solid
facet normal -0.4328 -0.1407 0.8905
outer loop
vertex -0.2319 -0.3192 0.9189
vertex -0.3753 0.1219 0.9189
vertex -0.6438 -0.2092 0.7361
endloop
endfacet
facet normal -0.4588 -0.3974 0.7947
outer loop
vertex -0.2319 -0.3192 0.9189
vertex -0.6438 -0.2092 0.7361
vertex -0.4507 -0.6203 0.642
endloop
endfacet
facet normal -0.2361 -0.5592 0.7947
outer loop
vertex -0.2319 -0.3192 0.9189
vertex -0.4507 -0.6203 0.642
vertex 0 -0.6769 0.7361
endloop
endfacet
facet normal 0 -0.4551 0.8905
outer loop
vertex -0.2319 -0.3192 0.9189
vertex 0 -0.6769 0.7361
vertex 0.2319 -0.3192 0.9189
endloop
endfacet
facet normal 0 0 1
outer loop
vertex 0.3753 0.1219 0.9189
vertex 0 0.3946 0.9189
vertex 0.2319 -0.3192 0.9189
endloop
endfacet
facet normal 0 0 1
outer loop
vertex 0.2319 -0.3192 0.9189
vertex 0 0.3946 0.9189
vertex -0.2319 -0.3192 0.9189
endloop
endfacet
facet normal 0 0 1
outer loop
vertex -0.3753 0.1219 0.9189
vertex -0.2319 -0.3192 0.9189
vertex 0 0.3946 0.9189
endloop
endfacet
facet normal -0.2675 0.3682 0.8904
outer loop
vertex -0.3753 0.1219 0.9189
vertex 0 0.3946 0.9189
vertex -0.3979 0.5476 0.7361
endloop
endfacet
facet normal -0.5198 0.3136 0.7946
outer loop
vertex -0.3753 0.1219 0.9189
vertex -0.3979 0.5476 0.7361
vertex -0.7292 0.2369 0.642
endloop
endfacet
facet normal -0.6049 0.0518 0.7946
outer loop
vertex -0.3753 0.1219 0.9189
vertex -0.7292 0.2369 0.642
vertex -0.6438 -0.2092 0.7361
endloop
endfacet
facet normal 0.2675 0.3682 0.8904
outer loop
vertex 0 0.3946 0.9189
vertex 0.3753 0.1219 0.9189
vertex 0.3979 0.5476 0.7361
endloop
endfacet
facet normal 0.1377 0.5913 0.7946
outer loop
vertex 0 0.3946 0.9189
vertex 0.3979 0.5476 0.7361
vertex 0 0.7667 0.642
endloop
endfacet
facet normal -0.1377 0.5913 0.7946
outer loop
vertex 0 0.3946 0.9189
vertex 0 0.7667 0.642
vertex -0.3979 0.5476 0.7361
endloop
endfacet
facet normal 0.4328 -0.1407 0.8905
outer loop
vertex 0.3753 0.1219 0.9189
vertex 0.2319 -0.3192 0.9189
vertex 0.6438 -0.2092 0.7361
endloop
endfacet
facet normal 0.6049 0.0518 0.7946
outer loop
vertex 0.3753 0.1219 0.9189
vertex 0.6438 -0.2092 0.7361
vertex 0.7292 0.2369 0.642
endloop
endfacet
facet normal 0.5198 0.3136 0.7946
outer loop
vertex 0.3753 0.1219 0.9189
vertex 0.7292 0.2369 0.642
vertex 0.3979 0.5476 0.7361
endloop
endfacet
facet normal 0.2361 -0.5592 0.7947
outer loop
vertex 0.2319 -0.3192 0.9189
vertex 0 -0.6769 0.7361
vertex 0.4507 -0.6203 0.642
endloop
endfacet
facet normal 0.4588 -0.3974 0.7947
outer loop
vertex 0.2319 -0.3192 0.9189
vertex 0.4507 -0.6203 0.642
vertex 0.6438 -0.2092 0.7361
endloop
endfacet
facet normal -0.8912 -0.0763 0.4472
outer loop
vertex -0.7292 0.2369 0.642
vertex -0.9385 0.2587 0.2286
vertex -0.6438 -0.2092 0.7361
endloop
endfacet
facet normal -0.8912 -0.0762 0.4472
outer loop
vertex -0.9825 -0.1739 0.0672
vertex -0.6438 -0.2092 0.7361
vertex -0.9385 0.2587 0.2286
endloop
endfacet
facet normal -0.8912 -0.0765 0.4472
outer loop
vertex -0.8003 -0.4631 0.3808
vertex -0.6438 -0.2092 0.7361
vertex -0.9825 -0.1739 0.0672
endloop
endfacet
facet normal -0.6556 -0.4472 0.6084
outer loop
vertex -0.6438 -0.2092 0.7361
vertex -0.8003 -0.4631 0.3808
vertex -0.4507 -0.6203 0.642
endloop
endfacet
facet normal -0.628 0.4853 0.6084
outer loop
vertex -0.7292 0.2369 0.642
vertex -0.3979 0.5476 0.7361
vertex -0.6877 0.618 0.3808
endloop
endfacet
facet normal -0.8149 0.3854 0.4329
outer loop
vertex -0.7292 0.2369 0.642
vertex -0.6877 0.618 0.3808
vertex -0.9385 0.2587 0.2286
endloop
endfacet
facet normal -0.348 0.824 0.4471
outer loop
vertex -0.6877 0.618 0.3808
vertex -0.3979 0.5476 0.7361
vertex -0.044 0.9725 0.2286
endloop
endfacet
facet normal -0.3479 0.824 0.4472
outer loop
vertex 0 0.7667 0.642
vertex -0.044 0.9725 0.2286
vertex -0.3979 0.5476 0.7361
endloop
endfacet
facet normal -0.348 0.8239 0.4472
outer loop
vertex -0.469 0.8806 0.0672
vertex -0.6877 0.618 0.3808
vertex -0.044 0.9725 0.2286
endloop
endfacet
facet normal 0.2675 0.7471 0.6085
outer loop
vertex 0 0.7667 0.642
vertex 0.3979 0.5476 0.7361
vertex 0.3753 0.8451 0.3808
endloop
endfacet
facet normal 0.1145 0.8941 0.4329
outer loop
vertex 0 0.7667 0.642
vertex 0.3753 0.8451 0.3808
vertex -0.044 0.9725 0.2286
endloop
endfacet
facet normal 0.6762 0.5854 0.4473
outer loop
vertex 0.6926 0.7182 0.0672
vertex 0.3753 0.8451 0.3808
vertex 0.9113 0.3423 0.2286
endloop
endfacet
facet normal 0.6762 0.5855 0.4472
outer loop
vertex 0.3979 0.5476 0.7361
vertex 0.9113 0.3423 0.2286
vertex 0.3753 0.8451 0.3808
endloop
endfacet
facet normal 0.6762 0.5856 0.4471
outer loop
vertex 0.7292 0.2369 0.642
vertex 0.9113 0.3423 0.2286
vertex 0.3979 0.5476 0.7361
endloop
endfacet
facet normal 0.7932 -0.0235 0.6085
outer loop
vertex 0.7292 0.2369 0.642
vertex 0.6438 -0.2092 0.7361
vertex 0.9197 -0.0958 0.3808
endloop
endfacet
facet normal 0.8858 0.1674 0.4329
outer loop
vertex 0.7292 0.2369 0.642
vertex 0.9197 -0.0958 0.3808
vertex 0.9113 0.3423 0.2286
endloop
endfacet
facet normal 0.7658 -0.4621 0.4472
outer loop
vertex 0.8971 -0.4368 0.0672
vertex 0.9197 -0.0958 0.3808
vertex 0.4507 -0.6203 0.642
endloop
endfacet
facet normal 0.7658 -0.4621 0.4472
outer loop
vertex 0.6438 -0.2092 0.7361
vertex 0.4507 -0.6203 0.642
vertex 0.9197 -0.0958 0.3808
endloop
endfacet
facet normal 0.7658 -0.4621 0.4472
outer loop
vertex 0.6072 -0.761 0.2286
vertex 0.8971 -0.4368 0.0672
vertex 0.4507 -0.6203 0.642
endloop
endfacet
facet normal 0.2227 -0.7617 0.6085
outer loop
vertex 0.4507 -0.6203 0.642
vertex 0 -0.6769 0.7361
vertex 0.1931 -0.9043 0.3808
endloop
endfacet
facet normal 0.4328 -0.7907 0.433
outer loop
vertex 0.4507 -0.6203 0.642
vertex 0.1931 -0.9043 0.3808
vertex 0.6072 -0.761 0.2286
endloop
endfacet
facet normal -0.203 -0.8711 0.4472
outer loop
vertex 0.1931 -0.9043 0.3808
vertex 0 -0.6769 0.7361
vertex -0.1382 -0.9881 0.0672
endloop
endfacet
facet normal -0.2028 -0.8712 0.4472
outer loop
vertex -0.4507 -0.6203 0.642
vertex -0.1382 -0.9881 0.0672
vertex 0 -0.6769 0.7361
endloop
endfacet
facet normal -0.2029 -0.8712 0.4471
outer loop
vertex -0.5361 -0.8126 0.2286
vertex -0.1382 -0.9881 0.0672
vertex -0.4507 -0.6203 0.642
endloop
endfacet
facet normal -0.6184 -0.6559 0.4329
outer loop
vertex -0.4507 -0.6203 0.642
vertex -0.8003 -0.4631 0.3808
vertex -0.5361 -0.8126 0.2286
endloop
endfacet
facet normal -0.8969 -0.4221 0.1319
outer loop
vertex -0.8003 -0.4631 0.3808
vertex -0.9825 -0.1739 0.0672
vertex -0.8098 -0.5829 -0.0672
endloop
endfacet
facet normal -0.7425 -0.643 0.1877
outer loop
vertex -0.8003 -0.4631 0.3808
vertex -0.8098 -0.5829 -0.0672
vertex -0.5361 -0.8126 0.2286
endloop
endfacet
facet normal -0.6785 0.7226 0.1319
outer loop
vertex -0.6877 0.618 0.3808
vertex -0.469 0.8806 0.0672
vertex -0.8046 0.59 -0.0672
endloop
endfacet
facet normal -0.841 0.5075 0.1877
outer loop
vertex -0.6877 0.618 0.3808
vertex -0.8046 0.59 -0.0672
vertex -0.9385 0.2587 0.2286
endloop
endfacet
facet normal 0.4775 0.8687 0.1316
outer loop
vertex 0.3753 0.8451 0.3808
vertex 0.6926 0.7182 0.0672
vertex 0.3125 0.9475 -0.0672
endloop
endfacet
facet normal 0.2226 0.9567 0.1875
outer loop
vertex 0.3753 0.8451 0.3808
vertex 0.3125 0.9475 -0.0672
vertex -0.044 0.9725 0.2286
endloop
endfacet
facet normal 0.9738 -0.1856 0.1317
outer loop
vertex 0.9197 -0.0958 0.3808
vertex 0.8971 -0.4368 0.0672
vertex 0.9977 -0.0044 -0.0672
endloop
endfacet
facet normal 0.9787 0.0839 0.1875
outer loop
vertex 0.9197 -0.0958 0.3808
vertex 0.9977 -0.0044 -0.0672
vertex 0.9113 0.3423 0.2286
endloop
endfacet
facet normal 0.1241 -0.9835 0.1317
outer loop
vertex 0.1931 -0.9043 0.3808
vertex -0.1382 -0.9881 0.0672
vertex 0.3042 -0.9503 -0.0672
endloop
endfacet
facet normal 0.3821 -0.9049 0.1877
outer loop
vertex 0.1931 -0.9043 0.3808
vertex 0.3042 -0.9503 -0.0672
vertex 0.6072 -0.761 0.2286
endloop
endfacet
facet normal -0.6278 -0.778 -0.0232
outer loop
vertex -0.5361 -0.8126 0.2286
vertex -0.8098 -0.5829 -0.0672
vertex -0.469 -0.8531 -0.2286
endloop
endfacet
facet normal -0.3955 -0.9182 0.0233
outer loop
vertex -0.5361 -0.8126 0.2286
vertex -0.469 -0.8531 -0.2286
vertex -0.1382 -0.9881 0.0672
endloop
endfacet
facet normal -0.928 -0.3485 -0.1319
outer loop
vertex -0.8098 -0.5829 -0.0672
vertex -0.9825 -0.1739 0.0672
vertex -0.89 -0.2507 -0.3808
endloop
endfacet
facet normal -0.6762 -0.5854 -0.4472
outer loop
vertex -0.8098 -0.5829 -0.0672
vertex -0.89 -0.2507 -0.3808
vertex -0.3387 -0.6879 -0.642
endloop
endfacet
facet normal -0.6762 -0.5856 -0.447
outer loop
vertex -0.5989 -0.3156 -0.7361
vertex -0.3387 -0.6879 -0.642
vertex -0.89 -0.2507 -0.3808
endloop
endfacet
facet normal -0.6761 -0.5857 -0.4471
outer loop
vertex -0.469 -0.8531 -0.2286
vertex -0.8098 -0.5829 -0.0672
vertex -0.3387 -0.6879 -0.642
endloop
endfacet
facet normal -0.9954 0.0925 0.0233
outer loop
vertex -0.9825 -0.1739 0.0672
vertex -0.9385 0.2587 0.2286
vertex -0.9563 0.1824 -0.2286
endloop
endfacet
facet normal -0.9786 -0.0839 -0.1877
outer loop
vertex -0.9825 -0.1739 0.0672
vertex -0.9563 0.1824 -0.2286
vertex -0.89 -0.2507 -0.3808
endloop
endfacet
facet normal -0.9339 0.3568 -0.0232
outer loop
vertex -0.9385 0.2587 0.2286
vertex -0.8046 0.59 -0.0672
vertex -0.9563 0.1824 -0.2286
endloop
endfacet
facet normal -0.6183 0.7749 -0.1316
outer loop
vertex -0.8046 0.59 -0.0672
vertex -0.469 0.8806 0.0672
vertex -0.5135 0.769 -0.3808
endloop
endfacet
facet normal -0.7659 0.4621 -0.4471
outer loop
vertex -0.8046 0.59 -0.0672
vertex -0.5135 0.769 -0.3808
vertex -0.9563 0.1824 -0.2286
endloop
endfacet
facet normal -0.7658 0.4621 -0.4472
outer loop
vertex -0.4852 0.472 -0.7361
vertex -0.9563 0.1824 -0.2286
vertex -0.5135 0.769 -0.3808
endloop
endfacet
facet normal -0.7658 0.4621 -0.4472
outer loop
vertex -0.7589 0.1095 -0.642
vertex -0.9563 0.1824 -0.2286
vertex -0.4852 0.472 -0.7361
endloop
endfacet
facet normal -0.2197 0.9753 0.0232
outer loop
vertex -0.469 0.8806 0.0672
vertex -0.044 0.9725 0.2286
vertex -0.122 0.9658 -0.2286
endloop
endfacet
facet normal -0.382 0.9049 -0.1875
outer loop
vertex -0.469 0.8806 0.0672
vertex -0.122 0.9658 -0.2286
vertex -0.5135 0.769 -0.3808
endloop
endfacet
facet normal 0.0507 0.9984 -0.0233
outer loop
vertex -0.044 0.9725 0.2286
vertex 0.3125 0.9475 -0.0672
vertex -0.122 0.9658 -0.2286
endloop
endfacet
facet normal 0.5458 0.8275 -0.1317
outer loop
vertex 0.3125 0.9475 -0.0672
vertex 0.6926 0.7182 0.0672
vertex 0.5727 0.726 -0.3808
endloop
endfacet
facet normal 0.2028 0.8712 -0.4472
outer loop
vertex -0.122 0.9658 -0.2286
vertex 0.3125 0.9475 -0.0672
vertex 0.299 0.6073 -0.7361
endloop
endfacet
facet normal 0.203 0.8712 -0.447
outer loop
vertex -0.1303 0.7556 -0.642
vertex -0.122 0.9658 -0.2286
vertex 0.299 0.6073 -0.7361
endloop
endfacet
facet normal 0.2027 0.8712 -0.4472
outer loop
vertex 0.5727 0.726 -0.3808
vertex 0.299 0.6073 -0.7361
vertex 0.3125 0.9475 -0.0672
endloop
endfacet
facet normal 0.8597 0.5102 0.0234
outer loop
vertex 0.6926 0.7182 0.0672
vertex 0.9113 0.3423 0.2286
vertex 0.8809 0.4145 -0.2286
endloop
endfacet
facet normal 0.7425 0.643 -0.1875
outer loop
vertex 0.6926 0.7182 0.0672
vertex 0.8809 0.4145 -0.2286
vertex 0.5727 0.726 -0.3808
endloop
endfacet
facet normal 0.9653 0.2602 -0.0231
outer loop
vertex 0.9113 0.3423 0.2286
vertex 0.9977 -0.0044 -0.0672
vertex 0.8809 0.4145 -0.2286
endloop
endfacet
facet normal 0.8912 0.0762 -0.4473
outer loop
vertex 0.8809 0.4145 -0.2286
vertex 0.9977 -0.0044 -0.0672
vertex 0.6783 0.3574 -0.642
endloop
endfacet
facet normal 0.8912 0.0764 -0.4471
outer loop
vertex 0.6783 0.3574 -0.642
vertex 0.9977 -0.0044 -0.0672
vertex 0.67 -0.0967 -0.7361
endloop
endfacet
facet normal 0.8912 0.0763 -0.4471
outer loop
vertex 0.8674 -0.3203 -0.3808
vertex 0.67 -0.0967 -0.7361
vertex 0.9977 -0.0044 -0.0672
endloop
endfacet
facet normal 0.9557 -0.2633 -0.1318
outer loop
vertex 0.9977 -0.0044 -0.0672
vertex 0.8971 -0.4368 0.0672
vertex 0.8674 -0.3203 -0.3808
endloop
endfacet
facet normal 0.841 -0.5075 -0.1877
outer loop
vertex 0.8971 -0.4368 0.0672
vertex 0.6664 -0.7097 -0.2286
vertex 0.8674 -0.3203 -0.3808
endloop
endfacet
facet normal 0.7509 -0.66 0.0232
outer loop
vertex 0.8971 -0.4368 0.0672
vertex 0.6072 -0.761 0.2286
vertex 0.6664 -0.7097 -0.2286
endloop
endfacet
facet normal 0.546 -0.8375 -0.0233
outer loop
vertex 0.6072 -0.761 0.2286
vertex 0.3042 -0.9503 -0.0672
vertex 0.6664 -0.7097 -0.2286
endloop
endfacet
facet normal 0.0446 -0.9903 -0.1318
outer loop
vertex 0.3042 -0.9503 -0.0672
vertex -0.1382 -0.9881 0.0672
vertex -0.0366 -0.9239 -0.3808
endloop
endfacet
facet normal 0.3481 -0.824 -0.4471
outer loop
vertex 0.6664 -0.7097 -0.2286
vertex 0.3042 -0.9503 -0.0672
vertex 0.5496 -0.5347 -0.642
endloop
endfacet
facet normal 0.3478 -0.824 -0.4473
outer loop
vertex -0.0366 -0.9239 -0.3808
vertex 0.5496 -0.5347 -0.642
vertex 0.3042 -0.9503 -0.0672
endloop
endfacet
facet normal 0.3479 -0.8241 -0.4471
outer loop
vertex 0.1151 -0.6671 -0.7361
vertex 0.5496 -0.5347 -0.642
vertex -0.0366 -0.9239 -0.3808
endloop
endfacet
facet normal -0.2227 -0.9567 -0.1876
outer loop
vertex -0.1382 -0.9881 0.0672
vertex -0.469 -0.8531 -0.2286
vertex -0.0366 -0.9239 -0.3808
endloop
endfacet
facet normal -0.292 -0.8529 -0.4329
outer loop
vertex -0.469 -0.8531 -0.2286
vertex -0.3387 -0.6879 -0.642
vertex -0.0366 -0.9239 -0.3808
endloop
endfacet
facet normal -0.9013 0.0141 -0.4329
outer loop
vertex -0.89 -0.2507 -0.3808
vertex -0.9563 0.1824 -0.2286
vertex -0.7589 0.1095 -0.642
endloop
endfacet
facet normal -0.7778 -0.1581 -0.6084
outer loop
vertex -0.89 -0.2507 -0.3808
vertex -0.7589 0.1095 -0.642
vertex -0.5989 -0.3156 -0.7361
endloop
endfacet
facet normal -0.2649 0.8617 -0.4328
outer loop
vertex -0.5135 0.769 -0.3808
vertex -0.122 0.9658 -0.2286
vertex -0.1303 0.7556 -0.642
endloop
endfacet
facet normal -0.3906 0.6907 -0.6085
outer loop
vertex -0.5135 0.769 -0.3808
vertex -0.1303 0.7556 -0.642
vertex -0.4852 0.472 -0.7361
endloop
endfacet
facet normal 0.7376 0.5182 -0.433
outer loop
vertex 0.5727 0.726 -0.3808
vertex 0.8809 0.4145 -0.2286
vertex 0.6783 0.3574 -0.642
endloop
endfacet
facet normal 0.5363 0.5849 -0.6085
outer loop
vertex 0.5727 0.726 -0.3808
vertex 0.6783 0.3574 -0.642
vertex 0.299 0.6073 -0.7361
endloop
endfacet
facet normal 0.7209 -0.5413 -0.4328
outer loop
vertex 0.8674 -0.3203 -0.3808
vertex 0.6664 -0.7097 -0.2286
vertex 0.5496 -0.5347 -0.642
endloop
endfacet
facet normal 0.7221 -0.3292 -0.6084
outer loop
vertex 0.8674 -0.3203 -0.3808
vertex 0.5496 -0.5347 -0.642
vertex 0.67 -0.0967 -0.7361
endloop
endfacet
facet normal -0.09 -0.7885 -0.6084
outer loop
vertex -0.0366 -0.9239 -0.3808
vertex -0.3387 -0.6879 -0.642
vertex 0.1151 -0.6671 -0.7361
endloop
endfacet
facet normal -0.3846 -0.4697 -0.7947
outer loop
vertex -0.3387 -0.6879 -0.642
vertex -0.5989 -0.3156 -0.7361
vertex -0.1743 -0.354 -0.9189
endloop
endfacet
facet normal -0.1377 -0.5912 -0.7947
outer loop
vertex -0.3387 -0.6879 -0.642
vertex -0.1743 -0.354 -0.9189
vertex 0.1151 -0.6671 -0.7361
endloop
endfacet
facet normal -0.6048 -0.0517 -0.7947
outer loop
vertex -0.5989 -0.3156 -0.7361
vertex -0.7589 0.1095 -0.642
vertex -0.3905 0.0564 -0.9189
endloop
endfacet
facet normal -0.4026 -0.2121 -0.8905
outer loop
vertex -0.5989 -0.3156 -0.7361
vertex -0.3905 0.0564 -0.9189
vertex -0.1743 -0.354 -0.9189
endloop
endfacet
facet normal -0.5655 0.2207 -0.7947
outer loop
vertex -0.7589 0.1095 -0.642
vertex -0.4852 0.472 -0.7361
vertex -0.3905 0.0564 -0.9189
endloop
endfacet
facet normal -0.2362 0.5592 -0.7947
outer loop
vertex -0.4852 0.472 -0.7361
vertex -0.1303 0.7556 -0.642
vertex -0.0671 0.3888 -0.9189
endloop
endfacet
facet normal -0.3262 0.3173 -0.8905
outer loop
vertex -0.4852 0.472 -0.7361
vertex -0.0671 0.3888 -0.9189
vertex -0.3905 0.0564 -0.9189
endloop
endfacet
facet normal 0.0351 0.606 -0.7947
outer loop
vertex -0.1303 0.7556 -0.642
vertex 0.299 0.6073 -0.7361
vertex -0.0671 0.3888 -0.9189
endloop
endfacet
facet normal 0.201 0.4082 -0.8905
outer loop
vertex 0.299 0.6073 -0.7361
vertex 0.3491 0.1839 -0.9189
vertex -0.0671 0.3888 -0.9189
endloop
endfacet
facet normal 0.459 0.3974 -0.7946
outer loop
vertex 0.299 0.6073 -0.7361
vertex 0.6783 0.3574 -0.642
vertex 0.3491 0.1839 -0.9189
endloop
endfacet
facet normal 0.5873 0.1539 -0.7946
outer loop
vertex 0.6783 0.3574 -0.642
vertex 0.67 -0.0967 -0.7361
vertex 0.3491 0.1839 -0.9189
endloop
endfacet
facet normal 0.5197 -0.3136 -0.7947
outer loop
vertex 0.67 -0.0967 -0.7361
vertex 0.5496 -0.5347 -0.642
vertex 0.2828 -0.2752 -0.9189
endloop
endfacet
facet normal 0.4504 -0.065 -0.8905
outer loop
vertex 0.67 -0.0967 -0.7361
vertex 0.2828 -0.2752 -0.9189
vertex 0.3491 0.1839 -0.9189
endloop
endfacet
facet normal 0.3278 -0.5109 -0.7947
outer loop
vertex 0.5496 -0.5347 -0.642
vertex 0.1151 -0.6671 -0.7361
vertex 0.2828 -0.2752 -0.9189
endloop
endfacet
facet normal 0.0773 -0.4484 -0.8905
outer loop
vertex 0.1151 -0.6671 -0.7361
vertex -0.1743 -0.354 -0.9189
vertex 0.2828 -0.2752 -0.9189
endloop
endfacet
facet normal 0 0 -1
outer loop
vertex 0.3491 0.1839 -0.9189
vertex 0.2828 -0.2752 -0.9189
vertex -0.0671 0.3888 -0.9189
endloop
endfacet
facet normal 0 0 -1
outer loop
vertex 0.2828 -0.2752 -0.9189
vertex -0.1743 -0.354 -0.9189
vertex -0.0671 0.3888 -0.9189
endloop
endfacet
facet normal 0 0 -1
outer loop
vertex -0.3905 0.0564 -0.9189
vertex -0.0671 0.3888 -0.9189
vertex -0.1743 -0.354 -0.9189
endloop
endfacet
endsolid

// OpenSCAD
polyhedron( points = [[-0.231928305560341, -0.319221945932502, 0.918860978140795], [-0.375267886281395, 0.121931921959161, 0.918860978140795], [8.02470666570088e-09, 0.394580006505783, 0.918860978140795], [0.375267902281846, 0.121931921891768, 0.918860978140795], [0.231928321538893, -0.319221945932502, 0.918860978140795], [-0.643795143608059, -0.209181733334976, 0.736050065152983], [-0.729202273100998, 0.236932175435458, 0.641970454470362], [-0.397887277386501, 0.547644857836196, 0.736050065175576], [8.09786935330627e-09, 0.766728644215033, 0.641970454693346], [0.397887293502313, 0.547644857736472, 0.736050065175576], [0.729202289224065, 0.236932175320542, 0.641970454693346], [0.643795159530729, -0.209181733431299, 0.736050065175576], [0.450671802407562, -0.620296518300059, 0.641970454693346], [7.96522865609951e-09, -0.676926290314683, 0.736050065175576], [-0.450671786484567, -0.620296518133699, 0.641970454470363], [-0.800319557740161, -0.463101512903121, 0.380820809854719], [-0.687748039536106, 0.618042892620898, 0.380820807187455], [0.375267902672186, 0.845073016540046, 0.38082080961792], [0.919676370072883, -0.0957590586378406, 0.380820808245892], [0.193123364952677, -0.904255381143256, 0.380820809675447], [-0.536078916176699, -0.812626484906181, 0.228596802076208], [-0.809754116124201, -0.582907950743952, -0.0671974685272689], [-0.98246409523482, -0.173918658300567, 0.0671974456052245], [-0.938511196120436, 0.258725954360736, 0.228596802166739], [-0.804606171703024, 0.589993463714018, -0.0671974686360806], [-0.469004560413391, 0.880635058100976, 0.0671974442847035], [-0.0439528900321955, 0.972527905886489, 0.228596801517122], [0.312480165577626, 0.947543957591592, -0.0671974677310591], [0.692603346068016, 0.718181045458317, 0.0671974454079138], [0.911346826727347, 0.342329335627551, 0.228596802253615], [0.997729547268712, -0.00437910810794139, -0.0671974679776499], [0.897056978836505, -0.436774774161999, 0.0671974441806373], [0.607196214819782, -0.760956753039414, 0.228596801441351], [0.304150619490349, -0.950250408786328, -0.0671974674877803], [-0.138191630806145, -0.988122713670143, 0.0671974454047688], [-0.469004558966205, -0.853098544996662, -0.228596825919992], [-0.890013306706725, -0.250700456739293, -0.380820832615819], [-0.956275303340901, 0.182427896042601, -0.228596825602533], [-0.513459521193173, 0.768982245341957, -0.380820832240874], [-0.122006066147665, 0.965845179783693, -0.228596826088126], [0.572677873599642, 0.725957610647756, -0.380820832862377], [0.880871416917429, 0.414497240276067, -0.228596826736584], [0.867393932712097, -0.320315782806461, -0.380820834095563], [0.66641453977267, -0.709671796935681, -0.228596826996255], [-0.0365989325764785, -0.923923701191533, -0.380820836159628], [-0.338668942077928, -0.687878021634188, -0.641970477938108], [-0.598866657595016, -0.315575528577551, -0.736050087882982], [-0.758865330699717, 0.109527303354239, -0.641970479358182], [-0.48519012656357, 0.472037827520411, -0.736050089336551], [-0.130335614159558, 0.755569613346236, -0.641970473021757], [0.299002671939031, 0.607310942197654, -0.736050083049967], [0.678313506451853, 0.35744038572391, -0.641970481354542], [0.669983963148922, -0.0966990379294216, -0.736050091770732], [0.549556403448352, -0.534659328913231, -0.64197048798566], [0.115070182927188, -0.667074287936001, -0.736050099528813], [-0.174288479527823, -0.354001231913204, -0.918860921224287], [-0.390533395021563, 0.0563658023794823, -0.918861081050615], [-0.0670742682023817, 0.38883710314742, -0.918860801919115], [0.349079404596965, 0.183949095933532, -0.918861414682032], [0.282816324514303, -0.275150227142308, -0.91886005871881]], faces = [[0, 1, 5], [0, 5, 14], [0, 14, 13], [0, 13, 4], [0, 4, 3, 2, 1], [1, 2, 7], [1, 7, 6], [1, 6, 5], [2, 3, 9], [2, 9, 8], [2, 8, 7], [3, 4, 11], [3, 11, 10], [3, 10, 9], [4, 13, 12], [4, 12, 11], [5, 6, 23, 22, 15], [5, 15, 14], [6, 7, 16], [6, 16, 23], [7, 8, 26, 25, 16], [8, 9, 17], [8, 17, 26], [9, 10, 29, 28, 17], [10, 11, 18], [10, 18, 29], [11, 12, 32, 31, 18], [12, 13, 19], [12, 19, 32], [13, 14, 20, 34, 19], [14, 15, 20], [15, 22, 21], [15, 21, 20], [16, 25, 24], [16, 24, 23], [17, 28, 27], [17, 27, 26], [18, 31, 30], [18, 30, 29], [19, 34, 33], [19, 33, 32], [20, 21, 35], [20, 35, 34], [21, 22, 36], [21, 36, 46, 45, 35], [22, 23, 37], [22, 37, 36], [23, 24, 37], [24, 25, 38], [24, 38, 48, 47, 37], [25, 26, 39], [25, 39, 38], [26, 27, 39], [27, 28, 40], [27, 40, 50, 49, 39], [28, 29, 41], [28, 41, 40], [29, 30, 41], [30, 42, 52, 51, 41], [30, 31, 42], [31, 43, 42], [31, 32, 43], [32, 33, 43], [33, 34, 44], [33, 44, 54, 53, 43], [34, 35, 44], [35, 45, 44], [36, 37, 47], [36, 47, 46], [38, 39, 49], [38, 49, 48], [40, 41, 51], [40, 51, 50], [42, 43, 53], [42, 53, 52], [44, 45, 54], [45, 46, 55], [45, 55, 54], [46, 47, 56], [46, 56, 55], [47, 48, 56], [48, 49, 57], [48, 57, 56], [49, 50, 57], [50, 58, 57], [50, 51, 58], [51, 52, 58], [52, 53, 59], [52, 59, 58], [53, 54, 59], [54, 55, 59], [55, 56, 57, 58, 59]]);
